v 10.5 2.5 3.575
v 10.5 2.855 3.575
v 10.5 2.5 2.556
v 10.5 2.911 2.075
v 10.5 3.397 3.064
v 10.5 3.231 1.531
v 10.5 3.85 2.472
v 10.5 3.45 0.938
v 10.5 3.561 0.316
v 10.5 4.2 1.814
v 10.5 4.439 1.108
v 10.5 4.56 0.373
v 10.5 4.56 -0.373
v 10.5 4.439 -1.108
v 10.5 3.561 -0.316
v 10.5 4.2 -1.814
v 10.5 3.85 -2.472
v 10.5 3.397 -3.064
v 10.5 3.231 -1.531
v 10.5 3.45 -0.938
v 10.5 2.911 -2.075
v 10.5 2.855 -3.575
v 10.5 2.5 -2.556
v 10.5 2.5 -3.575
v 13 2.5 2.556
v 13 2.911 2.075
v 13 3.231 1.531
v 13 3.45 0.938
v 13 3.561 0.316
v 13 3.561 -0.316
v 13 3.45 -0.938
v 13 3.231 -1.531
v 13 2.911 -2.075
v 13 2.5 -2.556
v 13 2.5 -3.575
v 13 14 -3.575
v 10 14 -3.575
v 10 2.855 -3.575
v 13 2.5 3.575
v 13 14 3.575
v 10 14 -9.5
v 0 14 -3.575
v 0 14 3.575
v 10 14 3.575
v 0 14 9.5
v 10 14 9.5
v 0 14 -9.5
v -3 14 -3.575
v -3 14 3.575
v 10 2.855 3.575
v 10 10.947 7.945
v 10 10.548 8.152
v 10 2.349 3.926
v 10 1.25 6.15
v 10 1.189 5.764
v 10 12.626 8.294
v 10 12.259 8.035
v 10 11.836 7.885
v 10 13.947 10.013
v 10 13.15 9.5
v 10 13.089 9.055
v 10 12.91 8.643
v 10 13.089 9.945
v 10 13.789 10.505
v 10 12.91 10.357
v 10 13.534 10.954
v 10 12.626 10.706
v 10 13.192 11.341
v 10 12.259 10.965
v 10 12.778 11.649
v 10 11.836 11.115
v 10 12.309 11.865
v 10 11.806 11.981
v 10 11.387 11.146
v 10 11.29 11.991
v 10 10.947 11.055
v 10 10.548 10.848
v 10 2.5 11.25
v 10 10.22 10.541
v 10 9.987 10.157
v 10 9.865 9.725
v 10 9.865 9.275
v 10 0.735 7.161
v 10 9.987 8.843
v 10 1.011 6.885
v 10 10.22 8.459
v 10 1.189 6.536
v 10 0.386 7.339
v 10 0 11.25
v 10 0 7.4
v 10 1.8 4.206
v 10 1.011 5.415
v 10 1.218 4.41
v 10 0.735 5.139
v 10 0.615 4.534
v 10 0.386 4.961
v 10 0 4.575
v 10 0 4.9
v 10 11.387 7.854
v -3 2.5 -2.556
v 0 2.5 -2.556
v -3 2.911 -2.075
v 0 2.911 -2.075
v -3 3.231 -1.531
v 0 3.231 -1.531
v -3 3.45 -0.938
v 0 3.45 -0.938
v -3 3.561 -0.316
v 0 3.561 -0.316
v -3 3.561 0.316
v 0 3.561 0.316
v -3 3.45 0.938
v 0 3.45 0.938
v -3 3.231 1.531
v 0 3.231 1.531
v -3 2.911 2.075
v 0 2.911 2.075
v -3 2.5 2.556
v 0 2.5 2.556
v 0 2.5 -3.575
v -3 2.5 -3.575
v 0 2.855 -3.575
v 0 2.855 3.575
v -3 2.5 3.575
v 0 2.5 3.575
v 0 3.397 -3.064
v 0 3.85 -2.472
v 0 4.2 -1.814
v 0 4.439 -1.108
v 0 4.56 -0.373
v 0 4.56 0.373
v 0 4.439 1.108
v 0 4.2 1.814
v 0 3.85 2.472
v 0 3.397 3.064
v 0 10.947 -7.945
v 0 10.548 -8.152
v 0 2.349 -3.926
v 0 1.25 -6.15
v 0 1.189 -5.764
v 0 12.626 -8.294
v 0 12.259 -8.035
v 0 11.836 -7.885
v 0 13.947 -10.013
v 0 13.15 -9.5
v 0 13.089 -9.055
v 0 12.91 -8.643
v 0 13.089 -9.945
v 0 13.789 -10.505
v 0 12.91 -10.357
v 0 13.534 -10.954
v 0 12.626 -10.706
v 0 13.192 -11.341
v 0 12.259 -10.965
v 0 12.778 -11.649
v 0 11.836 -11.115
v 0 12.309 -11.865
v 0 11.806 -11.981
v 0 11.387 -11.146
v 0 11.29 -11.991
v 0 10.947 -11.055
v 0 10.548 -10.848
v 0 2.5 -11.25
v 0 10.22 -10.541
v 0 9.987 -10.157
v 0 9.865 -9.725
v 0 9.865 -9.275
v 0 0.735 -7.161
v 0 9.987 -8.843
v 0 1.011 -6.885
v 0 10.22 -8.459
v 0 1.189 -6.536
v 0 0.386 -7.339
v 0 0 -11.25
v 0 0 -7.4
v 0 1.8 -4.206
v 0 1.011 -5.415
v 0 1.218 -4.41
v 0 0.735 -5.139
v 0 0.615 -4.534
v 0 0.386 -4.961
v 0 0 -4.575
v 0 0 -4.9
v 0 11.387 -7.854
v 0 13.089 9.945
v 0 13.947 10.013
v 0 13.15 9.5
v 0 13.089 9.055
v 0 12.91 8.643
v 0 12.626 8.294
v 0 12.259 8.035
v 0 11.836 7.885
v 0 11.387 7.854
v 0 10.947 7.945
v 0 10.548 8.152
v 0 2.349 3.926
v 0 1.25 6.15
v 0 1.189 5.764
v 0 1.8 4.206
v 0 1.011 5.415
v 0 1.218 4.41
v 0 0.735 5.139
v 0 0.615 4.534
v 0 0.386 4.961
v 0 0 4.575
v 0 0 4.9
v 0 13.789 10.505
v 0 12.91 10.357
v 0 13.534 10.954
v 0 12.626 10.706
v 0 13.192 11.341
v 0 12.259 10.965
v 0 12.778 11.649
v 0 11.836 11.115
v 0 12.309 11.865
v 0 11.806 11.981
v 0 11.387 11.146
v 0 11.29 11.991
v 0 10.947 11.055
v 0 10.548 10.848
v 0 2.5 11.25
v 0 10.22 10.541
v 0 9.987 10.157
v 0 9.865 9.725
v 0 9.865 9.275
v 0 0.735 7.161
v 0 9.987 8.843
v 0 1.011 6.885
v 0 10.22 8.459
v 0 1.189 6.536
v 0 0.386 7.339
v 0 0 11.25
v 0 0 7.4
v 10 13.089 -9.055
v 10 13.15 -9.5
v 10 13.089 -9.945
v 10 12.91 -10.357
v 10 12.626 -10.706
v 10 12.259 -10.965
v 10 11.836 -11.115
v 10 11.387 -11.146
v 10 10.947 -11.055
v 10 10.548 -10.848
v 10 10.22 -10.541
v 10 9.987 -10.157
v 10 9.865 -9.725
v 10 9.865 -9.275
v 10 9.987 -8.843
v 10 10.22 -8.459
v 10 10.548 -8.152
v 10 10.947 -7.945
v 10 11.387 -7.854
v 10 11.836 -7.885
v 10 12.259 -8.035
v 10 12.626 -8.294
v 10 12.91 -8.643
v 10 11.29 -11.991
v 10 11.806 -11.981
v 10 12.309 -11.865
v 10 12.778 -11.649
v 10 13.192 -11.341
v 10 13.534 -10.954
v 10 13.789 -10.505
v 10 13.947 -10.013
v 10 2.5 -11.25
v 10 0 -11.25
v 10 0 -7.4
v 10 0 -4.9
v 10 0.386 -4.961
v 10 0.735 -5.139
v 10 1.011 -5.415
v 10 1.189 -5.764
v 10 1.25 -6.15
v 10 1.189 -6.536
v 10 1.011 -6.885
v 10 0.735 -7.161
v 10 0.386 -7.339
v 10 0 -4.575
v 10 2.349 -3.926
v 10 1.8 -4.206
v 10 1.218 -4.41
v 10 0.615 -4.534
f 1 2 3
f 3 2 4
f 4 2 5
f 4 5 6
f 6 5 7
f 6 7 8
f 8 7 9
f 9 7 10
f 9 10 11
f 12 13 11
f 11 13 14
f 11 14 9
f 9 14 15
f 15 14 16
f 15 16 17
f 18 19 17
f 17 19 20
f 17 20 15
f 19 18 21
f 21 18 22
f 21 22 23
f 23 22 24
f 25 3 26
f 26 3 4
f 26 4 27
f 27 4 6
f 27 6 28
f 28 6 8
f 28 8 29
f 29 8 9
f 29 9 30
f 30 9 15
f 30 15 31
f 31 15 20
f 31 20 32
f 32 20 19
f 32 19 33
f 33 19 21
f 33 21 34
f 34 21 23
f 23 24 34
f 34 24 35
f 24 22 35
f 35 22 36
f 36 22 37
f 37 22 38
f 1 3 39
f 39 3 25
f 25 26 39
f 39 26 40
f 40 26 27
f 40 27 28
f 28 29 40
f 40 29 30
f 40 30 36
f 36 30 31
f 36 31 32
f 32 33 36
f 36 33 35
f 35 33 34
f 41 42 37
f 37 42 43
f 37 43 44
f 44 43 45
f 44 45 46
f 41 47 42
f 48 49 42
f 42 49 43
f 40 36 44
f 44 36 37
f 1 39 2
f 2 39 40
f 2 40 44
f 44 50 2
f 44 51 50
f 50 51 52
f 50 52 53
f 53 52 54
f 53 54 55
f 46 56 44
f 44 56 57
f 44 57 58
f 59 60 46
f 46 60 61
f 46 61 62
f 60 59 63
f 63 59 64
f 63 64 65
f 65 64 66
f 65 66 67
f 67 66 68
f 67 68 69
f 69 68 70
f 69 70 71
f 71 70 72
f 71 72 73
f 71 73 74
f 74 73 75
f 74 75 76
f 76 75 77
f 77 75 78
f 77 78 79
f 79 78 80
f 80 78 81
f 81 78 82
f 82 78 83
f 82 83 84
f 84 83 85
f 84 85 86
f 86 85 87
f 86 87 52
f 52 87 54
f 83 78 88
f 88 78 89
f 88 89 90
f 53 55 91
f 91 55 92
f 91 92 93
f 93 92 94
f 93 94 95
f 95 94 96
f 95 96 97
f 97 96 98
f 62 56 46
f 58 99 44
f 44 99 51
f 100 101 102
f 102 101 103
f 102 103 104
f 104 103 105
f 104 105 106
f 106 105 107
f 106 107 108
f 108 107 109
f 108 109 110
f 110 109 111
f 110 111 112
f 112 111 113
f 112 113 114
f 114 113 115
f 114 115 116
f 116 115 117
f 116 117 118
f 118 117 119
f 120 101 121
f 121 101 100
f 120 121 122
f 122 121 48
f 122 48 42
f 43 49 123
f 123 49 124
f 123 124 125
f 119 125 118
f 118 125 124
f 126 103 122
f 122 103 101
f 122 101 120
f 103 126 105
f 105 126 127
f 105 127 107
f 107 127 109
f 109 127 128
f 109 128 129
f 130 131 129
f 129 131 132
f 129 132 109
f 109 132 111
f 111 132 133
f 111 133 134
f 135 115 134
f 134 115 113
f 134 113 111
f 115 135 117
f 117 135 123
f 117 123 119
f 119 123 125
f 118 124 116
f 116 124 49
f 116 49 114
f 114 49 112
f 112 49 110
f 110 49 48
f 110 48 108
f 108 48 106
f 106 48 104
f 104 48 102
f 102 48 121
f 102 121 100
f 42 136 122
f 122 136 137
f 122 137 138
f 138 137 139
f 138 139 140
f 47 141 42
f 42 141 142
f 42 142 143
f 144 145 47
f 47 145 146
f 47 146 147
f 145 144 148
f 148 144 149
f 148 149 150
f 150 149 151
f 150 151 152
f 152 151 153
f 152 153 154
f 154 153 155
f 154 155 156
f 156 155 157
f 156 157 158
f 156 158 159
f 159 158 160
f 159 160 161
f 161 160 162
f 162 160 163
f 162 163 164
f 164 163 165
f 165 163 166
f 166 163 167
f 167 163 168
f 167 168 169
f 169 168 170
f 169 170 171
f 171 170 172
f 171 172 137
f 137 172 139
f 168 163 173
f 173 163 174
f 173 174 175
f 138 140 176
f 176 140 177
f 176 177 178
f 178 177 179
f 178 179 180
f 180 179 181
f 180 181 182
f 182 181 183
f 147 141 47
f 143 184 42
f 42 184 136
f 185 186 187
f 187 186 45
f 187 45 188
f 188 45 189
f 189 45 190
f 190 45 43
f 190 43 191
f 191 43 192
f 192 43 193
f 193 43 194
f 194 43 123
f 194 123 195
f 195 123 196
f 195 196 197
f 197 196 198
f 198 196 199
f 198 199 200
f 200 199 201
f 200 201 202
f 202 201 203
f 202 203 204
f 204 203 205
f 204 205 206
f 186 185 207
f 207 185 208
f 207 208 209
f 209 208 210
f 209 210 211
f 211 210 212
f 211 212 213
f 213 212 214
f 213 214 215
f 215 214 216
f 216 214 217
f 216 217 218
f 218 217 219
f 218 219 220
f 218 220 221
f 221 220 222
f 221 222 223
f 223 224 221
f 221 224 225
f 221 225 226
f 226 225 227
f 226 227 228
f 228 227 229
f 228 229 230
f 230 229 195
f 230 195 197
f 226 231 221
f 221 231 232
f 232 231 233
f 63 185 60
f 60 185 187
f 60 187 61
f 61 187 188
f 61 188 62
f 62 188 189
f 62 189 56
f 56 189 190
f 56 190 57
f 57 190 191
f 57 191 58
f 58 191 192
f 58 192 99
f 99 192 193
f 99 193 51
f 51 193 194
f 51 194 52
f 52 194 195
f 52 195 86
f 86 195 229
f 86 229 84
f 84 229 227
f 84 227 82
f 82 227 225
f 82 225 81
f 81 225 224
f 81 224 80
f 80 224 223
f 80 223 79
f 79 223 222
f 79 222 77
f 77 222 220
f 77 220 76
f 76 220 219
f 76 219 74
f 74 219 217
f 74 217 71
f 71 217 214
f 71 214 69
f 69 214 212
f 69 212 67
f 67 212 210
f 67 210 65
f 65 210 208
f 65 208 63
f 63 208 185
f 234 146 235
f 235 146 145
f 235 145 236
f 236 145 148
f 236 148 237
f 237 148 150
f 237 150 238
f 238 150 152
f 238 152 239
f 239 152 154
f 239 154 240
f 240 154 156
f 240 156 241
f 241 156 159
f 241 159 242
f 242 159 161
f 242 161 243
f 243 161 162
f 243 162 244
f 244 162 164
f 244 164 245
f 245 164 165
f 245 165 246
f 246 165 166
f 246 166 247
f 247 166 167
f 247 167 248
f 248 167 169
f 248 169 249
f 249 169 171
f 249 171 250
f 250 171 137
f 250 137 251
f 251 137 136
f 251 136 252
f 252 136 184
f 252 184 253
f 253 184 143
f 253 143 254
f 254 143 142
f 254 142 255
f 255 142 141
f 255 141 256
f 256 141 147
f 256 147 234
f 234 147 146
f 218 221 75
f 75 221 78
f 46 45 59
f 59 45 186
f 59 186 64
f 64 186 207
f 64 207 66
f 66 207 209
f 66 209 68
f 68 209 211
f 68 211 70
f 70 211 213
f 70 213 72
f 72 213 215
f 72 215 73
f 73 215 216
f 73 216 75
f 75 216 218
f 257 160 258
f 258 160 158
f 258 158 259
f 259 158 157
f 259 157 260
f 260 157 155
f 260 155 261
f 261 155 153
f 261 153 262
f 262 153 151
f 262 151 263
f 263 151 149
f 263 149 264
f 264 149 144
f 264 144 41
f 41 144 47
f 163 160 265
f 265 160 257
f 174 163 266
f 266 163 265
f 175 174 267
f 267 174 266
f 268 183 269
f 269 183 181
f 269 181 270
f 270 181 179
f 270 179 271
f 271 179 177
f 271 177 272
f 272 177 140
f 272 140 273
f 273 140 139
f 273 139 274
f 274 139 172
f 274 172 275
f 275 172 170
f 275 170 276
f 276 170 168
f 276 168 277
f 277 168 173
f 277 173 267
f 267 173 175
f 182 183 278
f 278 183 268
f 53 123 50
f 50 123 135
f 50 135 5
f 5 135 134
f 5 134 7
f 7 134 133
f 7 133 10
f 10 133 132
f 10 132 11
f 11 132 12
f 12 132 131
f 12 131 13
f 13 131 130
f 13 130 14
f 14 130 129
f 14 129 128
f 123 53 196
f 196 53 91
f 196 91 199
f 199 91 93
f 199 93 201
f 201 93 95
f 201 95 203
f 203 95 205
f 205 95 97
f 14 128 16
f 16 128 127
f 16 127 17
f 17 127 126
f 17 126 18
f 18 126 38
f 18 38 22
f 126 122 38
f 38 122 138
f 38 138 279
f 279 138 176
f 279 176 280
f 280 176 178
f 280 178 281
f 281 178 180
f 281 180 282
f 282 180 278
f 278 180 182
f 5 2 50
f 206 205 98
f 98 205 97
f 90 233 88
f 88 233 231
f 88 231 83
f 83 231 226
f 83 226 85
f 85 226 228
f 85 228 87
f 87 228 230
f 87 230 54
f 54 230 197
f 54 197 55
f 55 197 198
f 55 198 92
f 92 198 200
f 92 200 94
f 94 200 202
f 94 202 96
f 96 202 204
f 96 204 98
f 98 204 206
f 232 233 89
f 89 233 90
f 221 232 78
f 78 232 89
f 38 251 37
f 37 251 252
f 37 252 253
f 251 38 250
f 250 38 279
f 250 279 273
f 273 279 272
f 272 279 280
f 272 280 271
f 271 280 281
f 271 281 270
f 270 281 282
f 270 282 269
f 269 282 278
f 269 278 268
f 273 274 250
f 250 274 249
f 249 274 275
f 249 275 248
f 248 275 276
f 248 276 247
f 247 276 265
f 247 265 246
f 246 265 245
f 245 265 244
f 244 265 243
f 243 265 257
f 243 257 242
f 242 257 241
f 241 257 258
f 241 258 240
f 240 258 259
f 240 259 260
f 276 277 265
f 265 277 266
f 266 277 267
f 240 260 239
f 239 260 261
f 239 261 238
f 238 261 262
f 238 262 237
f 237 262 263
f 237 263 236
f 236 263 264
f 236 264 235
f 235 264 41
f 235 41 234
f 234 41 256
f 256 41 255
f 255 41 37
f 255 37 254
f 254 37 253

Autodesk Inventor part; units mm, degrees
ref_plane "YZ Plane" through (0, 0, 0) normal (1, 0, 0) x (0, 1, 0)
ref_plane "XZ Plane" through (0, 0, 0) normal (0, 1, 0) x (-1, 0, 0)
ref_plane "XY Plane" through (0, 0, 0) normal (0, 0, 1) x (1, 0, 0)
sketch "スケッチ1" plane through (0, 0, 0) normal (1, 0, 0) x (0, 1, 0)
  circle A0 centre (0, 0) radius 4.575
  circle A1 centre (0, 0) radius 3.575
  line L0 (0, 0) -> (0, 6)
  line L1 (0, 6) -> (0, -6)
  circle A2 centre (0, 6) radius 1.25
  circle A3 centre (0, -6) radius 1.25
  line L2 (0, 0) -> (11.5, 0)
  line L3 (11.5, 0) -> (11.5, 9.5)
  line L4 (11.5, 9.5) -> (11.5, -9.5)
  circle A4 centre (11.5, 9.5) radius 1.65
  circle A5 centre (11.5, -9.5) radius 1.65
  line L5 (0, 0) -> (0, 11.25)
  line L6 (0, 11.25) -> (0, -11.25)
  line L7 (-2.5, -11.25) -> (2.5, -11.25)
  line L8 (2.5, -11.25) -> (2.5, 11.25)
  line L9 (2.5, 11.25) -> (-2.5, 11.25)
  line L10 (-2.5, 11.25) -> (-2.5, -11.25)
  line L11 (-2.5, -11.25) -> (2.5, 11.25) construction
  line L12 (2.5, -11.25) -> (-2.5, 11.25) construction
  circle A6 centre (11.5, 9.5) radius 2.5
  circle A7 centre (11.5, -9.5) radius 2.5
  line L13 (2.5, 11.25) -> (11.2899, 11.9912)
  line L14 (2.5, -11.25) -> (11.2899, -11.9912)
  line L15 (14, 9.5) -> (14, -9.5)
  line L16 (0, -3.575) -> (14, -3.575)
  line L17 (0, 3.575) -> (14, 3.575)
  circle A8 centre (0, 0) radius 6
  line L18 (0, 0) -> (0, 6.15)
  line L19 (0, 6.15) -> (0, -6.15)
  circle A9 centre (0, 6.15) radius 1.25
  circle A10 centre (0, -6.15) radius 1.25
  point P0 (0, 7.25)
  point P1 (0, 4.75)
  point P2 (0, 4.575)
  point P3 (0, -4.575)
  point P4 (0, -4.75)
  point P5 (0, -7.25)
  point P6 (2.5, 3.575)
  point P7 (2.5, 2.5555)
  point P8 (2.5, -2.5555)
  point P9 (2.5, -3.575)
  point P10 (0, 7.4)
  point P11 (0, 4.9)
  point P12 (0, -4.9)
  point P13 (0, -7.4)
  dimension "d0" = 9.15
  dimension "d1" = 7.15
  dimension "d2" = 6
  dimension "d3" = 12
  dimension "d4" = 2.5
  dimension "d5" = 2.5
  dimension "d6" = 11.5
  dimension "d7" = 9.5
  dimension "d8" = 19
  dimension "d9" = 3.3
  dimension "d10" = 3.3
  dimension "d11" = 11.25
  dimension "d12" = 22.5
  dimension "d13" = 5
  dimension "d14" = 5
  dimension "d15" = 5
  dimension "d28" = 12
  dimension "d29" = 6.15
  dimension "d30" = 12.3
  dimension "d31" = 2.5
  dimension "d32" = 2.5
extrude "押し出し1" add sketch "スケッチ1" along normal blind 10 contours L2 A8 L16 A0 | A0 L17 A8 L2 | A0 L8 A8 L17 | L16 A8 L8 A0 | A8 L17 L3 L2 | L2 L4 L16 A8 | A0 L0 A2 A8 L8 | A8 L8 L13 A6 L3 L17 | L8 A8 A3 L1 A0 | L16 L4 A7 L14 L8 A8 | L3 L17 L15 L16 L4 | A8 A2 A9 L5 L9 L8 | L3 A6 L15 L17 | L8 L7 L6 A10 A3 A8 | L16 L15 A7 L4 | L0 A9 A8 A2 | A8 A9 A2 | A6 | A3 A8 A10 L1 | A3 A10 A8 | A7 picked at (0.1008, 4.8124) picked at (1.2329, 5.9096) picked at (0.1008, -4.8124) picked at (1.2329, -5.9096)
extrude "押し出し2" add sketch "スケッチ1" against normal blind 3 contours L2 A1 L8 L17 A0 | L2 A8 L16 A0 | A0 L16 L8 A1 L2 | A0 L17 A8 L2 | A8 L17 L3 L2 | L2 L4 L16 A8 | L3 L17 L15 L16 L4
sketch "スケッチ2" plane through (10, 0, 0) normal (1, 0, 0) x (0, 0, -1)
  circle A0 centre (0, 0) radius 3.575
  line L0 (-3.575, 14) -> (-9.5, 14) projected
  line L1 (-3.575, 0) -> (-3.575, 14)
  line L2 (3.575, 2.8548) -> (3.575, 14) projected
  line L3 (-3.575, 14) -> (3.575, 14)
  line L4 (3.575, 14) -> (3.575, 0)
  line L5 (-11.9912, 11.2899) -> (-11.25, 2.5) projected
  line L6 (11.25, -2.5) -> (-11.25, -2.5)
  line L7 (-11.25, -2.5) -> (-11.25, 2.5)
  line L8 (-11.25, 2.5) -> (11.25, 2.5)
  line L9 (11.25, 2.5) -> (11.25, -2.5)
  line L10 (11.25, -2.5) -> (-11.25, 2.5) construction
  line L11 (-11.25, -2.5) -> (11.25, 2.5) construction
  circle A1 centre (0, 0) radius 4.575
  point P0 (-3.575, 2.8548)
  point P1 (-3.575, 2.5)
  point P2 (-2.5555, 2.5)
  point P3 (2.5555, 2.5)
  point P4 (3.575, 2.5)
extrude "押し出し4" add sketch "スケッチ2" along normal blind 0.5 contours A1 L1 L3 L2
extrude "押し出し5" add sketch "スケッチ2" along normal blind 3 contours A0 L8 L1 A1 L4 | A1 L1 L3 L2
extrude "押し出し6" cut sketch "スケッチ2" along normal blind 0.5 contours A0 L8 L1 A1 L4
properties part number "ikafly3.3c"
